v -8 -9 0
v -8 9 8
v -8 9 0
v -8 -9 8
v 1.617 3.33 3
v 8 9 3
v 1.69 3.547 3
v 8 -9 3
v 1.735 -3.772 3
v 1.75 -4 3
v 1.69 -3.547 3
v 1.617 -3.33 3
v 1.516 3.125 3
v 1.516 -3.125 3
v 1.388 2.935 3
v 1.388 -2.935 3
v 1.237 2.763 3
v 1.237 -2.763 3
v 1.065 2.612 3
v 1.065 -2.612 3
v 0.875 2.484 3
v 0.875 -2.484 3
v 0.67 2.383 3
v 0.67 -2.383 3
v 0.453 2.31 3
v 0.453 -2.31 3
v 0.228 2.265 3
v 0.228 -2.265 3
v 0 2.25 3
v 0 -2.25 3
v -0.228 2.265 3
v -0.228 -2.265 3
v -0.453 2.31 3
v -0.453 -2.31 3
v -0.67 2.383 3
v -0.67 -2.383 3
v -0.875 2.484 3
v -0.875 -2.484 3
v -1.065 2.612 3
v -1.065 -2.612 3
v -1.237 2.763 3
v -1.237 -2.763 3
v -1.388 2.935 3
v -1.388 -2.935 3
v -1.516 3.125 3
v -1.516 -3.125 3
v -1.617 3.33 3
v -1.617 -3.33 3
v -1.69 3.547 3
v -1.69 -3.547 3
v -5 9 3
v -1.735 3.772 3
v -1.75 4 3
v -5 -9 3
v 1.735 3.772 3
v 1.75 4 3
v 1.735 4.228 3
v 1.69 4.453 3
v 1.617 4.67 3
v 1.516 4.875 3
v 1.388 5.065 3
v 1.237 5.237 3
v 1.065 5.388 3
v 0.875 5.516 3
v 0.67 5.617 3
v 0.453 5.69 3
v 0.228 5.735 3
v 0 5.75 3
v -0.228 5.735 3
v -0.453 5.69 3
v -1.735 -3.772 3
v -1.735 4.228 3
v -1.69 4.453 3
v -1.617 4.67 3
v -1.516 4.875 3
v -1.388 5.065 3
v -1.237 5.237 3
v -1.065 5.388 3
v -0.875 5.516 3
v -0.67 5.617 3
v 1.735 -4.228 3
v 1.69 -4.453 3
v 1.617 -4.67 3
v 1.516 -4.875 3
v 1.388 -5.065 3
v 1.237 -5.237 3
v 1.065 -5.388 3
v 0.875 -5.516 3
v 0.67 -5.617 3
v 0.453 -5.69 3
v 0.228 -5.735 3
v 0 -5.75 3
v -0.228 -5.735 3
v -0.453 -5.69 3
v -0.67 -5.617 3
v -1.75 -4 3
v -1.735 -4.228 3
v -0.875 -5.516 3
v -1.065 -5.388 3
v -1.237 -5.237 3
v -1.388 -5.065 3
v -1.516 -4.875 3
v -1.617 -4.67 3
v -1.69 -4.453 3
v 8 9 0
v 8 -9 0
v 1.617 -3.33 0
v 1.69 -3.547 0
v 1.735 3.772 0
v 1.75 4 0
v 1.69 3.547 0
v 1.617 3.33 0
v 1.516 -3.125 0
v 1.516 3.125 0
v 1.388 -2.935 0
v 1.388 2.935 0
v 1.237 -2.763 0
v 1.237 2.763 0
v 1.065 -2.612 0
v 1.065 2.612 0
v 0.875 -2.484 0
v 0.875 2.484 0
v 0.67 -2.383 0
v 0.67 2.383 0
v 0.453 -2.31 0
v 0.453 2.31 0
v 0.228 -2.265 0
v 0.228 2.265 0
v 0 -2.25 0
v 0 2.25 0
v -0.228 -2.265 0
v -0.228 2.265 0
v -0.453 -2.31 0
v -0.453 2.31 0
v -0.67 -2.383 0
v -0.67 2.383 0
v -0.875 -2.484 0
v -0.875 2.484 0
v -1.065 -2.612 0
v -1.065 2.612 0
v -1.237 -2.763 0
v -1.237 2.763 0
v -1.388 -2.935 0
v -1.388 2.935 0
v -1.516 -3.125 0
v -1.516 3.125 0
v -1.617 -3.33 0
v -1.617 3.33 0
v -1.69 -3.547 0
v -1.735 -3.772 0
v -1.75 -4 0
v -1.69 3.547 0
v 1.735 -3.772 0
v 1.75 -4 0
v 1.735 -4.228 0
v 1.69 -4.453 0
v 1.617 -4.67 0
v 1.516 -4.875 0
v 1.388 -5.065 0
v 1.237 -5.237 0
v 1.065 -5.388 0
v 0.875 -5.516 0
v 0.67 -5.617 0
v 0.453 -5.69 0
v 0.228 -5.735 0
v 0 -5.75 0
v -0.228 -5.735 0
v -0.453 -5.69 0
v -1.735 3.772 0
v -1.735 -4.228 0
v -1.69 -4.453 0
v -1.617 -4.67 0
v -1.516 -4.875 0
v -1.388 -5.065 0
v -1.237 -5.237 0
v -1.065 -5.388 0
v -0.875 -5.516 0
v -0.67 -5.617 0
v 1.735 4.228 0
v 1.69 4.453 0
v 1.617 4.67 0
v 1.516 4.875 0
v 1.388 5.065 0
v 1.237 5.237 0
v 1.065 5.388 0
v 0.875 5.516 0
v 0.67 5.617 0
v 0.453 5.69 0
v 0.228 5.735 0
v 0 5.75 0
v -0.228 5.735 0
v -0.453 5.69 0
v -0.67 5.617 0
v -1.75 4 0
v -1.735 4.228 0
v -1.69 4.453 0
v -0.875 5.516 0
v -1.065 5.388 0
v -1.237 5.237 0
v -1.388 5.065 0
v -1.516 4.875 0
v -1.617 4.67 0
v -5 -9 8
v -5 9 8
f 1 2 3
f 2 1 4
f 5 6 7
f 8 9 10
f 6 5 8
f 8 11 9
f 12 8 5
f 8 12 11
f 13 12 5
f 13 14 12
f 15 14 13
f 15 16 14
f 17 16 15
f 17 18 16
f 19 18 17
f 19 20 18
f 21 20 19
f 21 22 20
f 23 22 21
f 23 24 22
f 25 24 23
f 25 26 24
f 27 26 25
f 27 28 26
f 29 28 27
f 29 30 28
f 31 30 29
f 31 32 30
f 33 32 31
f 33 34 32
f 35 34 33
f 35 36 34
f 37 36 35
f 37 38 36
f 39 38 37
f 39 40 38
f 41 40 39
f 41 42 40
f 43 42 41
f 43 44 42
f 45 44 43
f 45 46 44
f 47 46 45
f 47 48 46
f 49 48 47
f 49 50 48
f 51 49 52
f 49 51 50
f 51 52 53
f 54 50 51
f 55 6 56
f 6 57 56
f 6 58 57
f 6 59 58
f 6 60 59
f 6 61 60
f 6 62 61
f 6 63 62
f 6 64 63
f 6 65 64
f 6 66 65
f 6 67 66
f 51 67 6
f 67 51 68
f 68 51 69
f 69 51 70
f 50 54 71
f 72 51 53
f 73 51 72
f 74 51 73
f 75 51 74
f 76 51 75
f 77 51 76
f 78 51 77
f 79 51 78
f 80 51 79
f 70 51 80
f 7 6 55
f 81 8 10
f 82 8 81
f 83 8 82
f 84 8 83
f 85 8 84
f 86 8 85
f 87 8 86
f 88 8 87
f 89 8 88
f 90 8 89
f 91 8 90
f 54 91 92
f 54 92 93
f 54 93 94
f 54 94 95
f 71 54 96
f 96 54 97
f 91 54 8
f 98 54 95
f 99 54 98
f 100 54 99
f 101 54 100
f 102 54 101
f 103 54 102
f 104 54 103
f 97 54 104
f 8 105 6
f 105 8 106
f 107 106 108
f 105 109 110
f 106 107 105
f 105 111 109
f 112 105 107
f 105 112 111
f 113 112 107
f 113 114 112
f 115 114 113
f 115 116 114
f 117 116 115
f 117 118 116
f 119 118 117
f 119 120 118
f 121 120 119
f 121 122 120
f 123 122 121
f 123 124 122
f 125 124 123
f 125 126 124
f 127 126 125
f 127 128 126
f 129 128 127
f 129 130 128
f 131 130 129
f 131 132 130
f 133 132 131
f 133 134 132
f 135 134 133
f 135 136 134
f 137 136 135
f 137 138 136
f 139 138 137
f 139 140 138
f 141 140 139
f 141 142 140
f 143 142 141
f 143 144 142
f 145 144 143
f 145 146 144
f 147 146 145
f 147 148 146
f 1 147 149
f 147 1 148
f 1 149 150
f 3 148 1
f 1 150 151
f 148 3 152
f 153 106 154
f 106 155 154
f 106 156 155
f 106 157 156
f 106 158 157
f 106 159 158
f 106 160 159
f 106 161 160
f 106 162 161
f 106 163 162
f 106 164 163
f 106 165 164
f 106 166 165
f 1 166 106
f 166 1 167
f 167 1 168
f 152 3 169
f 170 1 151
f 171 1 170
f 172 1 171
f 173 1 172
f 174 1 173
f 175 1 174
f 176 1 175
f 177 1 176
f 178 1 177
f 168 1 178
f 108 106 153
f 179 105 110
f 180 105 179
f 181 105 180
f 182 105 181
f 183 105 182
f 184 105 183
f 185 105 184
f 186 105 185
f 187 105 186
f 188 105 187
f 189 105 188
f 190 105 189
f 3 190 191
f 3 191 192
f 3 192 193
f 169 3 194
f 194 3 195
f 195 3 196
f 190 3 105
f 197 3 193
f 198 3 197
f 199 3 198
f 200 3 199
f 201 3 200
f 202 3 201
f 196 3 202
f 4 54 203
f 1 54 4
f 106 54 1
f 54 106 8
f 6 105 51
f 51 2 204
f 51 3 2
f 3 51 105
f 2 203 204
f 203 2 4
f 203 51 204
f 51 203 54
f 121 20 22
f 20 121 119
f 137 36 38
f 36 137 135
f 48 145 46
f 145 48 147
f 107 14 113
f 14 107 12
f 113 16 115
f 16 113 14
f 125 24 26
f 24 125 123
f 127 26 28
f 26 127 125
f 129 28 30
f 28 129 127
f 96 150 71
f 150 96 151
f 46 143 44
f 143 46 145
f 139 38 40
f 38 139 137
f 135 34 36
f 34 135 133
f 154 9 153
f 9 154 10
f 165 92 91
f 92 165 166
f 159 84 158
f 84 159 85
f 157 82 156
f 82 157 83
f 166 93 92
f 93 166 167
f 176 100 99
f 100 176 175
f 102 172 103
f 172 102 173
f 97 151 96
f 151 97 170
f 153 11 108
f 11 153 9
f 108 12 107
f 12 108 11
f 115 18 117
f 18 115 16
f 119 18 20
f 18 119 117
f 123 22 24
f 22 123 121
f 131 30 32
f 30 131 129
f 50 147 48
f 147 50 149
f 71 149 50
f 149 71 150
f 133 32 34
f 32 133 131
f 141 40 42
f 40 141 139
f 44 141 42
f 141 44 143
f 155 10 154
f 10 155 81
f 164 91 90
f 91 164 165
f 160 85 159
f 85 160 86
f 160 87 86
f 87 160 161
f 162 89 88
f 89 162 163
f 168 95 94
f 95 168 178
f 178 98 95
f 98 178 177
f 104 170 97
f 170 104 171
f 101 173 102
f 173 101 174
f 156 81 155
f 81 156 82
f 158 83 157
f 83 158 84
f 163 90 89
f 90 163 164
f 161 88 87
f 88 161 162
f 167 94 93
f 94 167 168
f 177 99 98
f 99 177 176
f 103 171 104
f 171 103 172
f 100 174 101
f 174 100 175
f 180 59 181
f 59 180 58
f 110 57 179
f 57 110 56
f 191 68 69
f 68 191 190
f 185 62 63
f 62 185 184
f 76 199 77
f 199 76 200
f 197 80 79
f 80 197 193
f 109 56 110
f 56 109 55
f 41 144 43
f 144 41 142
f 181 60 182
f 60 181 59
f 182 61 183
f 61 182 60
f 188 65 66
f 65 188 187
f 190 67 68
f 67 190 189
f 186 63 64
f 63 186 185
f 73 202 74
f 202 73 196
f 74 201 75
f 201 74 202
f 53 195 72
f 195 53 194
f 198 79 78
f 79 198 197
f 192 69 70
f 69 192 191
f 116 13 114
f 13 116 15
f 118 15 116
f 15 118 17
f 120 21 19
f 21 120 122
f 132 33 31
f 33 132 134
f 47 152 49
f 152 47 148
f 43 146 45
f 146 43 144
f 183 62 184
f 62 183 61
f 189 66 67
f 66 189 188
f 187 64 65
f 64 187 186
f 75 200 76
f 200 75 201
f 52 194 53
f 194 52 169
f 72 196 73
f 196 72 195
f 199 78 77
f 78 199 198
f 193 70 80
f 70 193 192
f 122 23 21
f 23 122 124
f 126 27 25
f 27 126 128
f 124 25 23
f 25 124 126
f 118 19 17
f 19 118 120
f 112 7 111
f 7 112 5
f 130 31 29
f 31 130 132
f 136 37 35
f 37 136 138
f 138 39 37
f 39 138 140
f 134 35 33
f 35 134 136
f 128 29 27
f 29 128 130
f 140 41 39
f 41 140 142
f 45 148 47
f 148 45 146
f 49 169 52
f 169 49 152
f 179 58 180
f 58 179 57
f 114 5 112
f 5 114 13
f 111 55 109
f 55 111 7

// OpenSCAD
$fn=48;
module foot_carrier() {
    difference() {
        union() {
            translate([-8,-9,0]) cube([16,18,3]);
            translate([-8,-9,0]) cube([3,18,8]);
        }
        for(y=[-4,4]) translate([0,y,-1]) cylinder(d=3.5,h=5);
    }
}
foot_carrier();
